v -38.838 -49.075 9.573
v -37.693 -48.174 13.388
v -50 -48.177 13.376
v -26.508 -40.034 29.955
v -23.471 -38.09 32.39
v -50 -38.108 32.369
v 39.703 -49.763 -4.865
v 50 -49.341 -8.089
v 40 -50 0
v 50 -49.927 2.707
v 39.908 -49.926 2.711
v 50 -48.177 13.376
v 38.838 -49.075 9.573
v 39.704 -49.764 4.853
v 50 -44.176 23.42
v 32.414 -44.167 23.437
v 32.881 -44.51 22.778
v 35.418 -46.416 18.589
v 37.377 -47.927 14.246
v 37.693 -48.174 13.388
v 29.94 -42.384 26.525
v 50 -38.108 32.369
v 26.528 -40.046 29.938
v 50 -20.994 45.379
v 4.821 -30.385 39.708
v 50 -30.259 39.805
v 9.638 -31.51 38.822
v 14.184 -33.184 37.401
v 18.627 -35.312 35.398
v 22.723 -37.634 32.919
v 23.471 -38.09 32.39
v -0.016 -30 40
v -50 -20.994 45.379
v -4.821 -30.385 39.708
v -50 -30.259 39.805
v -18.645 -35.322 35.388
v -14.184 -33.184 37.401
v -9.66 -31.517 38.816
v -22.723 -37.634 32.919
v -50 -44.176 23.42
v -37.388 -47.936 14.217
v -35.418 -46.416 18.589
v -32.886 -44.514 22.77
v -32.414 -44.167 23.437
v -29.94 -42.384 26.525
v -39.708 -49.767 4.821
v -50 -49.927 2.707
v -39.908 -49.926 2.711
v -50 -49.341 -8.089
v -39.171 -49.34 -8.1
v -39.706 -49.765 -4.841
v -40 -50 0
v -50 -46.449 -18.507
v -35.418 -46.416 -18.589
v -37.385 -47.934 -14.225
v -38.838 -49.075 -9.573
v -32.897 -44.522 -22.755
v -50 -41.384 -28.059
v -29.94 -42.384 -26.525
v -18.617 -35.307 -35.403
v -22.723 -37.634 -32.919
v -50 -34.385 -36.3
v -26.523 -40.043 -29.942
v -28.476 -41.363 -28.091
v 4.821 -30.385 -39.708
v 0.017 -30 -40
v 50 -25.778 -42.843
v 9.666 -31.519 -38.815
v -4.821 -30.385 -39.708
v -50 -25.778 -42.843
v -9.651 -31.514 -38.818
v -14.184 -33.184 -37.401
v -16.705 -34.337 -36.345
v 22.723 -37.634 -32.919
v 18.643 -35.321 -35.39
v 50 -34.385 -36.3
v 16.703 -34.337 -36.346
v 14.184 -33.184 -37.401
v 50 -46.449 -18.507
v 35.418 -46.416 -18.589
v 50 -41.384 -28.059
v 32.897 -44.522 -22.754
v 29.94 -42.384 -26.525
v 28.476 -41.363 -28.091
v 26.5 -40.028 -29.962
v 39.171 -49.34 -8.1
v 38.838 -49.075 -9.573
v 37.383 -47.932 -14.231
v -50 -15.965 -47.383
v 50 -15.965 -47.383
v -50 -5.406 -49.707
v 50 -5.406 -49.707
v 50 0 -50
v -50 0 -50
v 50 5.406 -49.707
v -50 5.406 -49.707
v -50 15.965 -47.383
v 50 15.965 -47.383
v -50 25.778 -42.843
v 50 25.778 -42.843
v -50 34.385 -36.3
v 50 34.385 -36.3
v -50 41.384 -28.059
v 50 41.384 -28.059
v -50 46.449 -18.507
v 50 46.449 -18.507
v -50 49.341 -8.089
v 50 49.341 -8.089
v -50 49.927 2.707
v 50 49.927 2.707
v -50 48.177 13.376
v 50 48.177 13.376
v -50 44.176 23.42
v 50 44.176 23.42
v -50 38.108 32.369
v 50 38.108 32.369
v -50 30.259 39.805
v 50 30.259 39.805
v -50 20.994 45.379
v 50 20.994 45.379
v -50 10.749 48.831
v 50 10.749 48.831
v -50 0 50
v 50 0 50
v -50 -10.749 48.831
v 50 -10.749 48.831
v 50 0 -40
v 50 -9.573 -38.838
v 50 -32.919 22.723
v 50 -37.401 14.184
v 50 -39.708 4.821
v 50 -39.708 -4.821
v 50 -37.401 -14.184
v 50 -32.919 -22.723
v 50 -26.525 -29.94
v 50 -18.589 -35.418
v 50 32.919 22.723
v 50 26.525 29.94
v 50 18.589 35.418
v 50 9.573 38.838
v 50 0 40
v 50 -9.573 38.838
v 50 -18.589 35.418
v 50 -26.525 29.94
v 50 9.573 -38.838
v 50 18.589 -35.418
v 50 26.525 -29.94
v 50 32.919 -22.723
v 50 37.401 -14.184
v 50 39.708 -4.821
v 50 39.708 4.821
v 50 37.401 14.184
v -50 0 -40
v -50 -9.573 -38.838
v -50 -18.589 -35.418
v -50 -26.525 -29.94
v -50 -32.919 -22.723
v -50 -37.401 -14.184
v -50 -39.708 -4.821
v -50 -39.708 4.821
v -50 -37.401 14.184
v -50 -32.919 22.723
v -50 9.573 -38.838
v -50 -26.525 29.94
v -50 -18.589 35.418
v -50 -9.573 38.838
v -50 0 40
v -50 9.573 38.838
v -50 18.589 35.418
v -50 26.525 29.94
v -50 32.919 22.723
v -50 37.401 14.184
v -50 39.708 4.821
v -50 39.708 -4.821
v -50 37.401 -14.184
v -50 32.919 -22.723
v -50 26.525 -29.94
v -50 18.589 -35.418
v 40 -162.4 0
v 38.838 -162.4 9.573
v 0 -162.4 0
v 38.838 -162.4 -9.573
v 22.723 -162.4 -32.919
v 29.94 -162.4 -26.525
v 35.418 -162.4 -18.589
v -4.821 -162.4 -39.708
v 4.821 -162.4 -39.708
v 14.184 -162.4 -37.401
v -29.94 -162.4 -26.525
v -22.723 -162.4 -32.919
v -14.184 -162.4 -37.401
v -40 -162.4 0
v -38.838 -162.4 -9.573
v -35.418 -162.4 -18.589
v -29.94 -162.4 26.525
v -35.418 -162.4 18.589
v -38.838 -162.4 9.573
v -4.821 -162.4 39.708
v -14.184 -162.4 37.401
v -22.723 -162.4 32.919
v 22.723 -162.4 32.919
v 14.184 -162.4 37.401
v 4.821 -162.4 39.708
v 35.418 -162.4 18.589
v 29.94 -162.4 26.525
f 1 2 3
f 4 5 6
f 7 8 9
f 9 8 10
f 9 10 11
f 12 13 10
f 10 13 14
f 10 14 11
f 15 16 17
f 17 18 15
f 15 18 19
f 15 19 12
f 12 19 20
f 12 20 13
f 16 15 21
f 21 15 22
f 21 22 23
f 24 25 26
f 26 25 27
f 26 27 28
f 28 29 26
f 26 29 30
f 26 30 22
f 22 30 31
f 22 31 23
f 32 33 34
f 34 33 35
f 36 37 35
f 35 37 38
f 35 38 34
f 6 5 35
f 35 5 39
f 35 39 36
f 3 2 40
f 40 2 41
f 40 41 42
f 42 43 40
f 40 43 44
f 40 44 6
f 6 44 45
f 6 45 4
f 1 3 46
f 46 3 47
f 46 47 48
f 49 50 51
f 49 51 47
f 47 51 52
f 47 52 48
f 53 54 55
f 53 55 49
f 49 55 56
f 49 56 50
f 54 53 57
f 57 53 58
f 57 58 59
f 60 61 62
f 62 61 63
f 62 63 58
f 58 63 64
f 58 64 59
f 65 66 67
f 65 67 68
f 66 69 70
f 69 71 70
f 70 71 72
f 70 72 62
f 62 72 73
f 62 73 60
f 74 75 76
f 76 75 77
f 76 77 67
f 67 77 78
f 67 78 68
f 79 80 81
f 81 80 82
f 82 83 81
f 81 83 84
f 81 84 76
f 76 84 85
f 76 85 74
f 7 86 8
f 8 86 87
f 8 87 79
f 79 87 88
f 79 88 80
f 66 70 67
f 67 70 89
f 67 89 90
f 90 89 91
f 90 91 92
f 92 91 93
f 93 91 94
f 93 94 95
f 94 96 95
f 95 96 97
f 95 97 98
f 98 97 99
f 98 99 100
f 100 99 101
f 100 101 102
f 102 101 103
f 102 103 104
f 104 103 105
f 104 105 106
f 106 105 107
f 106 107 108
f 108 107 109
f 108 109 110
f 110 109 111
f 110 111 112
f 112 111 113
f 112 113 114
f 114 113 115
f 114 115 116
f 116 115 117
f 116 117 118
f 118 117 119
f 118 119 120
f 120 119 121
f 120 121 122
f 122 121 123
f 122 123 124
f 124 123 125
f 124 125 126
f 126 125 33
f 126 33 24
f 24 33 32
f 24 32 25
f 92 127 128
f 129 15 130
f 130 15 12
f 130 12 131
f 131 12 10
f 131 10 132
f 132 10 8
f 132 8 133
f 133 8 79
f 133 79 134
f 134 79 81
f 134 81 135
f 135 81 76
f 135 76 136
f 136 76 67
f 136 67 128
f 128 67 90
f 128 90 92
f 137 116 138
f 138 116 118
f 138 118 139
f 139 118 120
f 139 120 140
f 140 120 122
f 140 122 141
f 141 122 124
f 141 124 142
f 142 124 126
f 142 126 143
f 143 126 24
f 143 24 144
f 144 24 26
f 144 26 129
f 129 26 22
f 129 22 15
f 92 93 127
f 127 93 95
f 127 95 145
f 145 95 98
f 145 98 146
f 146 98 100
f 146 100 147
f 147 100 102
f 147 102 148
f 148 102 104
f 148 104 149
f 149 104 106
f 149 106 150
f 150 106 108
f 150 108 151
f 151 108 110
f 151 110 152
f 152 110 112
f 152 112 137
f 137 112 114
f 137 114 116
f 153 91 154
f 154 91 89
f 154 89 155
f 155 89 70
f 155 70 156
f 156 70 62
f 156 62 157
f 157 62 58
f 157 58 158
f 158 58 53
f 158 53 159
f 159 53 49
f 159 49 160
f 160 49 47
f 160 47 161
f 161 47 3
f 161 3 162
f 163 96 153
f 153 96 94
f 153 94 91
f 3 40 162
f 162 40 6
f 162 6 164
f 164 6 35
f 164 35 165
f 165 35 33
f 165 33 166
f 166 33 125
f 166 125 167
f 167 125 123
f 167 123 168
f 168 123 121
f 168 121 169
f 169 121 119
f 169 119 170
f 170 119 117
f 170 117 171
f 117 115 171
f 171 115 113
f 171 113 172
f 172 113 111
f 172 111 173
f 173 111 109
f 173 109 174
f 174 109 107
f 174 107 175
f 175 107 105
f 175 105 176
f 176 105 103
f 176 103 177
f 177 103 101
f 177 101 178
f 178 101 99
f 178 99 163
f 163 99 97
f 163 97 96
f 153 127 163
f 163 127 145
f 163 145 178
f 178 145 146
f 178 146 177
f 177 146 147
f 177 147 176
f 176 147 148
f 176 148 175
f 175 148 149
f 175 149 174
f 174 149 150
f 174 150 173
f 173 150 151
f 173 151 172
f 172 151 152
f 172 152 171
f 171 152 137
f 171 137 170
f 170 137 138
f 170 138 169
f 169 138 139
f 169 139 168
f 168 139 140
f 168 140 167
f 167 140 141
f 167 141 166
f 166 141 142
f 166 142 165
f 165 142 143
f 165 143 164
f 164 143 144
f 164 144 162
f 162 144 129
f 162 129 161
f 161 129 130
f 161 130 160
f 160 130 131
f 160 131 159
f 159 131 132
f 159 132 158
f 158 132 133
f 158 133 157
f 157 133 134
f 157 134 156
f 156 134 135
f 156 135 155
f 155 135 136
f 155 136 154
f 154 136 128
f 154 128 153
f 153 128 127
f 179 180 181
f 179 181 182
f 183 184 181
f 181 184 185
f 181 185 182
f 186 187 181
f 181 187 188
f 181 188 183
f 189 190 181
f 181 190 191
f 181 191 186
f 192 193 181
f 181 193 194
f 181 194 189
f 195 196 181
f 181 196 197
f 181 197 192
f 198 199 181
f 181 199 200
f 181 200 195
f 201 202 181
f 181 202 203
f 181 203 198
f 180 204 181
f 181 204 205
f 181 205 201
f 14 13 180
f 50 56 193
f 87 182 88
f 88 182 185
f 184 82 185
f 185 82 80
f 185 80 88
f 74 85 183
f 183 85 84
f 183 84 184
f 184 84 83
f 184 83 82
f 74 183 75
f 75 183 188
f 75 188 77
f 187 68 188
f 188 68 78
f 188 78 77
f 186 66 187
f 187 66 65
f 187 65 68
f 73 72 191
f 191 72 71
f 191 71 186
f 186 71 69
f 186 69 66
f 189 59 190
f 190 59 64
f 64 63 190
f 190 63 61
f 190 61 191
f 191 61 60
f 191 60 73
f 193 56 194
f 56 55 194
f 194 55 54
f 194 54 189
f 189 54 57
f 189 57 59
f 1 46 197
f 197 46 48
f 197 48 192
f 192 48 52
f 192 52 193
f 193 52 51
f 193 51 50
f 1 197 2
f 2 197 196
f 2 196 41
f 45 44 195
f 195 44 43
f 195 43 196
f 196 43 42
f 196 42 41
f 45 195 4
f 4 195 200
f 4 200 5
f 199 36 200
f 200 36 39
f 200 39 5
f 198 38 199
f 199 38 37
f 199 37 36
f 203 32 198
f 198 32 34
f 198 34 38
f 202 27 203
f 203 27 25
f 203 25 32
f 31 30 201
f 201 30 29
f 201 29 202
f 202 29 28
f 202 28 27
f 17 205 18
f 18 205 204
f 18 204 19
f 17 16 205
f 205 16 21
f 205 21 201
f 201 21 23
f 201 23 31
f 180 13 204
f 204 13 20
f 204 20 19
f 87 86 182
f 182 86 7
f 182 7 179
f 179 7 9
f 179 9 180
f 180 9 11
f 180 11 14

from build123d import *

# Parameters (mm, degrees)
EXTRUDE_1_DEPTH          = 50
EXTRUDE_1_DEPTH_BACK     = 50
SKETCH_1_R               = 50
CUT_EXTRUDE_2_DEPTH      = 50
CUT_EXTRUDE_2_DEPTH_BACK = 50
SKETCH_2_R               = 40
EXTRUDE_2_REACH          = 225.861
EXTRUDE_2_END_RADIUS     = 50
SKETCH_3_R               = 40


with BuildPart() as part:
    # 草图1 → 凸台-拉伸1 (new, two sides: drawn at the far end of the back side and taken through both)
    with BuildSketch(Plane(origin=(0, 0, 0), x_dir=(0, 0, -1), z_dir=(1, 0, 0)).offset(-EXTRUDE_1_DEPTH_BACK)):
        Circle(SKETCH_1_R)
    extrude(amount=EXTRUDE_1_DEPTH + EXTRUDE_1_DEPTH_BACK)

    # 草图2 → 切除-拉伸2 (cut, two sides: drawn at the far end of the back side and taken through both)
    with BuildSketch(Plane(origin=(0, 0, 0), x_dir=(0, 0, -1), z_dir=(1, 0, 0)).offset(-CUT_EXTRUDE_2_DEPTH_BACK)):
        Circle(SKETCH_2_R)
    extrude(amount=CUT_EXTRUDE_2_DEPTH + CUT_EXTRUDE_2_DEPTH_BACK, mode=Mode.SUBTRACT)

    # 凸台-拉伸2: up to this cylinder (the profile starts outside it)
    extrude_2_end = Plane(origin=(0, 0, 0), z_dir=(-1, 0, 0)) * Cylinder(EXTRUDE_2_END_RADIUS, 552.722, mode=Mode.PRIVATE)
    # 草图3 → 凸台-拉伸2 (add, up to the surface)
    with BuildSketch(Plane(origin=(0, -162.4, 0), x_dir=(-1, 0, 0), z_dir=(0, -1, 0)), mode=Mode.PRIVATE) as extrude_2_sk1:
        Circle(SKETCH_3_R)
    extrude_2_tool1 = extrude(extrude_2_sk1.sketch, amount=-EXTRUDE_2_REACH, mode=Mode.PRIVATE) - extrude_2_end
    add(extrude_2_tool1.solids().sort_by_distance((0, -162.4, 0))[0])


solid = part.part
